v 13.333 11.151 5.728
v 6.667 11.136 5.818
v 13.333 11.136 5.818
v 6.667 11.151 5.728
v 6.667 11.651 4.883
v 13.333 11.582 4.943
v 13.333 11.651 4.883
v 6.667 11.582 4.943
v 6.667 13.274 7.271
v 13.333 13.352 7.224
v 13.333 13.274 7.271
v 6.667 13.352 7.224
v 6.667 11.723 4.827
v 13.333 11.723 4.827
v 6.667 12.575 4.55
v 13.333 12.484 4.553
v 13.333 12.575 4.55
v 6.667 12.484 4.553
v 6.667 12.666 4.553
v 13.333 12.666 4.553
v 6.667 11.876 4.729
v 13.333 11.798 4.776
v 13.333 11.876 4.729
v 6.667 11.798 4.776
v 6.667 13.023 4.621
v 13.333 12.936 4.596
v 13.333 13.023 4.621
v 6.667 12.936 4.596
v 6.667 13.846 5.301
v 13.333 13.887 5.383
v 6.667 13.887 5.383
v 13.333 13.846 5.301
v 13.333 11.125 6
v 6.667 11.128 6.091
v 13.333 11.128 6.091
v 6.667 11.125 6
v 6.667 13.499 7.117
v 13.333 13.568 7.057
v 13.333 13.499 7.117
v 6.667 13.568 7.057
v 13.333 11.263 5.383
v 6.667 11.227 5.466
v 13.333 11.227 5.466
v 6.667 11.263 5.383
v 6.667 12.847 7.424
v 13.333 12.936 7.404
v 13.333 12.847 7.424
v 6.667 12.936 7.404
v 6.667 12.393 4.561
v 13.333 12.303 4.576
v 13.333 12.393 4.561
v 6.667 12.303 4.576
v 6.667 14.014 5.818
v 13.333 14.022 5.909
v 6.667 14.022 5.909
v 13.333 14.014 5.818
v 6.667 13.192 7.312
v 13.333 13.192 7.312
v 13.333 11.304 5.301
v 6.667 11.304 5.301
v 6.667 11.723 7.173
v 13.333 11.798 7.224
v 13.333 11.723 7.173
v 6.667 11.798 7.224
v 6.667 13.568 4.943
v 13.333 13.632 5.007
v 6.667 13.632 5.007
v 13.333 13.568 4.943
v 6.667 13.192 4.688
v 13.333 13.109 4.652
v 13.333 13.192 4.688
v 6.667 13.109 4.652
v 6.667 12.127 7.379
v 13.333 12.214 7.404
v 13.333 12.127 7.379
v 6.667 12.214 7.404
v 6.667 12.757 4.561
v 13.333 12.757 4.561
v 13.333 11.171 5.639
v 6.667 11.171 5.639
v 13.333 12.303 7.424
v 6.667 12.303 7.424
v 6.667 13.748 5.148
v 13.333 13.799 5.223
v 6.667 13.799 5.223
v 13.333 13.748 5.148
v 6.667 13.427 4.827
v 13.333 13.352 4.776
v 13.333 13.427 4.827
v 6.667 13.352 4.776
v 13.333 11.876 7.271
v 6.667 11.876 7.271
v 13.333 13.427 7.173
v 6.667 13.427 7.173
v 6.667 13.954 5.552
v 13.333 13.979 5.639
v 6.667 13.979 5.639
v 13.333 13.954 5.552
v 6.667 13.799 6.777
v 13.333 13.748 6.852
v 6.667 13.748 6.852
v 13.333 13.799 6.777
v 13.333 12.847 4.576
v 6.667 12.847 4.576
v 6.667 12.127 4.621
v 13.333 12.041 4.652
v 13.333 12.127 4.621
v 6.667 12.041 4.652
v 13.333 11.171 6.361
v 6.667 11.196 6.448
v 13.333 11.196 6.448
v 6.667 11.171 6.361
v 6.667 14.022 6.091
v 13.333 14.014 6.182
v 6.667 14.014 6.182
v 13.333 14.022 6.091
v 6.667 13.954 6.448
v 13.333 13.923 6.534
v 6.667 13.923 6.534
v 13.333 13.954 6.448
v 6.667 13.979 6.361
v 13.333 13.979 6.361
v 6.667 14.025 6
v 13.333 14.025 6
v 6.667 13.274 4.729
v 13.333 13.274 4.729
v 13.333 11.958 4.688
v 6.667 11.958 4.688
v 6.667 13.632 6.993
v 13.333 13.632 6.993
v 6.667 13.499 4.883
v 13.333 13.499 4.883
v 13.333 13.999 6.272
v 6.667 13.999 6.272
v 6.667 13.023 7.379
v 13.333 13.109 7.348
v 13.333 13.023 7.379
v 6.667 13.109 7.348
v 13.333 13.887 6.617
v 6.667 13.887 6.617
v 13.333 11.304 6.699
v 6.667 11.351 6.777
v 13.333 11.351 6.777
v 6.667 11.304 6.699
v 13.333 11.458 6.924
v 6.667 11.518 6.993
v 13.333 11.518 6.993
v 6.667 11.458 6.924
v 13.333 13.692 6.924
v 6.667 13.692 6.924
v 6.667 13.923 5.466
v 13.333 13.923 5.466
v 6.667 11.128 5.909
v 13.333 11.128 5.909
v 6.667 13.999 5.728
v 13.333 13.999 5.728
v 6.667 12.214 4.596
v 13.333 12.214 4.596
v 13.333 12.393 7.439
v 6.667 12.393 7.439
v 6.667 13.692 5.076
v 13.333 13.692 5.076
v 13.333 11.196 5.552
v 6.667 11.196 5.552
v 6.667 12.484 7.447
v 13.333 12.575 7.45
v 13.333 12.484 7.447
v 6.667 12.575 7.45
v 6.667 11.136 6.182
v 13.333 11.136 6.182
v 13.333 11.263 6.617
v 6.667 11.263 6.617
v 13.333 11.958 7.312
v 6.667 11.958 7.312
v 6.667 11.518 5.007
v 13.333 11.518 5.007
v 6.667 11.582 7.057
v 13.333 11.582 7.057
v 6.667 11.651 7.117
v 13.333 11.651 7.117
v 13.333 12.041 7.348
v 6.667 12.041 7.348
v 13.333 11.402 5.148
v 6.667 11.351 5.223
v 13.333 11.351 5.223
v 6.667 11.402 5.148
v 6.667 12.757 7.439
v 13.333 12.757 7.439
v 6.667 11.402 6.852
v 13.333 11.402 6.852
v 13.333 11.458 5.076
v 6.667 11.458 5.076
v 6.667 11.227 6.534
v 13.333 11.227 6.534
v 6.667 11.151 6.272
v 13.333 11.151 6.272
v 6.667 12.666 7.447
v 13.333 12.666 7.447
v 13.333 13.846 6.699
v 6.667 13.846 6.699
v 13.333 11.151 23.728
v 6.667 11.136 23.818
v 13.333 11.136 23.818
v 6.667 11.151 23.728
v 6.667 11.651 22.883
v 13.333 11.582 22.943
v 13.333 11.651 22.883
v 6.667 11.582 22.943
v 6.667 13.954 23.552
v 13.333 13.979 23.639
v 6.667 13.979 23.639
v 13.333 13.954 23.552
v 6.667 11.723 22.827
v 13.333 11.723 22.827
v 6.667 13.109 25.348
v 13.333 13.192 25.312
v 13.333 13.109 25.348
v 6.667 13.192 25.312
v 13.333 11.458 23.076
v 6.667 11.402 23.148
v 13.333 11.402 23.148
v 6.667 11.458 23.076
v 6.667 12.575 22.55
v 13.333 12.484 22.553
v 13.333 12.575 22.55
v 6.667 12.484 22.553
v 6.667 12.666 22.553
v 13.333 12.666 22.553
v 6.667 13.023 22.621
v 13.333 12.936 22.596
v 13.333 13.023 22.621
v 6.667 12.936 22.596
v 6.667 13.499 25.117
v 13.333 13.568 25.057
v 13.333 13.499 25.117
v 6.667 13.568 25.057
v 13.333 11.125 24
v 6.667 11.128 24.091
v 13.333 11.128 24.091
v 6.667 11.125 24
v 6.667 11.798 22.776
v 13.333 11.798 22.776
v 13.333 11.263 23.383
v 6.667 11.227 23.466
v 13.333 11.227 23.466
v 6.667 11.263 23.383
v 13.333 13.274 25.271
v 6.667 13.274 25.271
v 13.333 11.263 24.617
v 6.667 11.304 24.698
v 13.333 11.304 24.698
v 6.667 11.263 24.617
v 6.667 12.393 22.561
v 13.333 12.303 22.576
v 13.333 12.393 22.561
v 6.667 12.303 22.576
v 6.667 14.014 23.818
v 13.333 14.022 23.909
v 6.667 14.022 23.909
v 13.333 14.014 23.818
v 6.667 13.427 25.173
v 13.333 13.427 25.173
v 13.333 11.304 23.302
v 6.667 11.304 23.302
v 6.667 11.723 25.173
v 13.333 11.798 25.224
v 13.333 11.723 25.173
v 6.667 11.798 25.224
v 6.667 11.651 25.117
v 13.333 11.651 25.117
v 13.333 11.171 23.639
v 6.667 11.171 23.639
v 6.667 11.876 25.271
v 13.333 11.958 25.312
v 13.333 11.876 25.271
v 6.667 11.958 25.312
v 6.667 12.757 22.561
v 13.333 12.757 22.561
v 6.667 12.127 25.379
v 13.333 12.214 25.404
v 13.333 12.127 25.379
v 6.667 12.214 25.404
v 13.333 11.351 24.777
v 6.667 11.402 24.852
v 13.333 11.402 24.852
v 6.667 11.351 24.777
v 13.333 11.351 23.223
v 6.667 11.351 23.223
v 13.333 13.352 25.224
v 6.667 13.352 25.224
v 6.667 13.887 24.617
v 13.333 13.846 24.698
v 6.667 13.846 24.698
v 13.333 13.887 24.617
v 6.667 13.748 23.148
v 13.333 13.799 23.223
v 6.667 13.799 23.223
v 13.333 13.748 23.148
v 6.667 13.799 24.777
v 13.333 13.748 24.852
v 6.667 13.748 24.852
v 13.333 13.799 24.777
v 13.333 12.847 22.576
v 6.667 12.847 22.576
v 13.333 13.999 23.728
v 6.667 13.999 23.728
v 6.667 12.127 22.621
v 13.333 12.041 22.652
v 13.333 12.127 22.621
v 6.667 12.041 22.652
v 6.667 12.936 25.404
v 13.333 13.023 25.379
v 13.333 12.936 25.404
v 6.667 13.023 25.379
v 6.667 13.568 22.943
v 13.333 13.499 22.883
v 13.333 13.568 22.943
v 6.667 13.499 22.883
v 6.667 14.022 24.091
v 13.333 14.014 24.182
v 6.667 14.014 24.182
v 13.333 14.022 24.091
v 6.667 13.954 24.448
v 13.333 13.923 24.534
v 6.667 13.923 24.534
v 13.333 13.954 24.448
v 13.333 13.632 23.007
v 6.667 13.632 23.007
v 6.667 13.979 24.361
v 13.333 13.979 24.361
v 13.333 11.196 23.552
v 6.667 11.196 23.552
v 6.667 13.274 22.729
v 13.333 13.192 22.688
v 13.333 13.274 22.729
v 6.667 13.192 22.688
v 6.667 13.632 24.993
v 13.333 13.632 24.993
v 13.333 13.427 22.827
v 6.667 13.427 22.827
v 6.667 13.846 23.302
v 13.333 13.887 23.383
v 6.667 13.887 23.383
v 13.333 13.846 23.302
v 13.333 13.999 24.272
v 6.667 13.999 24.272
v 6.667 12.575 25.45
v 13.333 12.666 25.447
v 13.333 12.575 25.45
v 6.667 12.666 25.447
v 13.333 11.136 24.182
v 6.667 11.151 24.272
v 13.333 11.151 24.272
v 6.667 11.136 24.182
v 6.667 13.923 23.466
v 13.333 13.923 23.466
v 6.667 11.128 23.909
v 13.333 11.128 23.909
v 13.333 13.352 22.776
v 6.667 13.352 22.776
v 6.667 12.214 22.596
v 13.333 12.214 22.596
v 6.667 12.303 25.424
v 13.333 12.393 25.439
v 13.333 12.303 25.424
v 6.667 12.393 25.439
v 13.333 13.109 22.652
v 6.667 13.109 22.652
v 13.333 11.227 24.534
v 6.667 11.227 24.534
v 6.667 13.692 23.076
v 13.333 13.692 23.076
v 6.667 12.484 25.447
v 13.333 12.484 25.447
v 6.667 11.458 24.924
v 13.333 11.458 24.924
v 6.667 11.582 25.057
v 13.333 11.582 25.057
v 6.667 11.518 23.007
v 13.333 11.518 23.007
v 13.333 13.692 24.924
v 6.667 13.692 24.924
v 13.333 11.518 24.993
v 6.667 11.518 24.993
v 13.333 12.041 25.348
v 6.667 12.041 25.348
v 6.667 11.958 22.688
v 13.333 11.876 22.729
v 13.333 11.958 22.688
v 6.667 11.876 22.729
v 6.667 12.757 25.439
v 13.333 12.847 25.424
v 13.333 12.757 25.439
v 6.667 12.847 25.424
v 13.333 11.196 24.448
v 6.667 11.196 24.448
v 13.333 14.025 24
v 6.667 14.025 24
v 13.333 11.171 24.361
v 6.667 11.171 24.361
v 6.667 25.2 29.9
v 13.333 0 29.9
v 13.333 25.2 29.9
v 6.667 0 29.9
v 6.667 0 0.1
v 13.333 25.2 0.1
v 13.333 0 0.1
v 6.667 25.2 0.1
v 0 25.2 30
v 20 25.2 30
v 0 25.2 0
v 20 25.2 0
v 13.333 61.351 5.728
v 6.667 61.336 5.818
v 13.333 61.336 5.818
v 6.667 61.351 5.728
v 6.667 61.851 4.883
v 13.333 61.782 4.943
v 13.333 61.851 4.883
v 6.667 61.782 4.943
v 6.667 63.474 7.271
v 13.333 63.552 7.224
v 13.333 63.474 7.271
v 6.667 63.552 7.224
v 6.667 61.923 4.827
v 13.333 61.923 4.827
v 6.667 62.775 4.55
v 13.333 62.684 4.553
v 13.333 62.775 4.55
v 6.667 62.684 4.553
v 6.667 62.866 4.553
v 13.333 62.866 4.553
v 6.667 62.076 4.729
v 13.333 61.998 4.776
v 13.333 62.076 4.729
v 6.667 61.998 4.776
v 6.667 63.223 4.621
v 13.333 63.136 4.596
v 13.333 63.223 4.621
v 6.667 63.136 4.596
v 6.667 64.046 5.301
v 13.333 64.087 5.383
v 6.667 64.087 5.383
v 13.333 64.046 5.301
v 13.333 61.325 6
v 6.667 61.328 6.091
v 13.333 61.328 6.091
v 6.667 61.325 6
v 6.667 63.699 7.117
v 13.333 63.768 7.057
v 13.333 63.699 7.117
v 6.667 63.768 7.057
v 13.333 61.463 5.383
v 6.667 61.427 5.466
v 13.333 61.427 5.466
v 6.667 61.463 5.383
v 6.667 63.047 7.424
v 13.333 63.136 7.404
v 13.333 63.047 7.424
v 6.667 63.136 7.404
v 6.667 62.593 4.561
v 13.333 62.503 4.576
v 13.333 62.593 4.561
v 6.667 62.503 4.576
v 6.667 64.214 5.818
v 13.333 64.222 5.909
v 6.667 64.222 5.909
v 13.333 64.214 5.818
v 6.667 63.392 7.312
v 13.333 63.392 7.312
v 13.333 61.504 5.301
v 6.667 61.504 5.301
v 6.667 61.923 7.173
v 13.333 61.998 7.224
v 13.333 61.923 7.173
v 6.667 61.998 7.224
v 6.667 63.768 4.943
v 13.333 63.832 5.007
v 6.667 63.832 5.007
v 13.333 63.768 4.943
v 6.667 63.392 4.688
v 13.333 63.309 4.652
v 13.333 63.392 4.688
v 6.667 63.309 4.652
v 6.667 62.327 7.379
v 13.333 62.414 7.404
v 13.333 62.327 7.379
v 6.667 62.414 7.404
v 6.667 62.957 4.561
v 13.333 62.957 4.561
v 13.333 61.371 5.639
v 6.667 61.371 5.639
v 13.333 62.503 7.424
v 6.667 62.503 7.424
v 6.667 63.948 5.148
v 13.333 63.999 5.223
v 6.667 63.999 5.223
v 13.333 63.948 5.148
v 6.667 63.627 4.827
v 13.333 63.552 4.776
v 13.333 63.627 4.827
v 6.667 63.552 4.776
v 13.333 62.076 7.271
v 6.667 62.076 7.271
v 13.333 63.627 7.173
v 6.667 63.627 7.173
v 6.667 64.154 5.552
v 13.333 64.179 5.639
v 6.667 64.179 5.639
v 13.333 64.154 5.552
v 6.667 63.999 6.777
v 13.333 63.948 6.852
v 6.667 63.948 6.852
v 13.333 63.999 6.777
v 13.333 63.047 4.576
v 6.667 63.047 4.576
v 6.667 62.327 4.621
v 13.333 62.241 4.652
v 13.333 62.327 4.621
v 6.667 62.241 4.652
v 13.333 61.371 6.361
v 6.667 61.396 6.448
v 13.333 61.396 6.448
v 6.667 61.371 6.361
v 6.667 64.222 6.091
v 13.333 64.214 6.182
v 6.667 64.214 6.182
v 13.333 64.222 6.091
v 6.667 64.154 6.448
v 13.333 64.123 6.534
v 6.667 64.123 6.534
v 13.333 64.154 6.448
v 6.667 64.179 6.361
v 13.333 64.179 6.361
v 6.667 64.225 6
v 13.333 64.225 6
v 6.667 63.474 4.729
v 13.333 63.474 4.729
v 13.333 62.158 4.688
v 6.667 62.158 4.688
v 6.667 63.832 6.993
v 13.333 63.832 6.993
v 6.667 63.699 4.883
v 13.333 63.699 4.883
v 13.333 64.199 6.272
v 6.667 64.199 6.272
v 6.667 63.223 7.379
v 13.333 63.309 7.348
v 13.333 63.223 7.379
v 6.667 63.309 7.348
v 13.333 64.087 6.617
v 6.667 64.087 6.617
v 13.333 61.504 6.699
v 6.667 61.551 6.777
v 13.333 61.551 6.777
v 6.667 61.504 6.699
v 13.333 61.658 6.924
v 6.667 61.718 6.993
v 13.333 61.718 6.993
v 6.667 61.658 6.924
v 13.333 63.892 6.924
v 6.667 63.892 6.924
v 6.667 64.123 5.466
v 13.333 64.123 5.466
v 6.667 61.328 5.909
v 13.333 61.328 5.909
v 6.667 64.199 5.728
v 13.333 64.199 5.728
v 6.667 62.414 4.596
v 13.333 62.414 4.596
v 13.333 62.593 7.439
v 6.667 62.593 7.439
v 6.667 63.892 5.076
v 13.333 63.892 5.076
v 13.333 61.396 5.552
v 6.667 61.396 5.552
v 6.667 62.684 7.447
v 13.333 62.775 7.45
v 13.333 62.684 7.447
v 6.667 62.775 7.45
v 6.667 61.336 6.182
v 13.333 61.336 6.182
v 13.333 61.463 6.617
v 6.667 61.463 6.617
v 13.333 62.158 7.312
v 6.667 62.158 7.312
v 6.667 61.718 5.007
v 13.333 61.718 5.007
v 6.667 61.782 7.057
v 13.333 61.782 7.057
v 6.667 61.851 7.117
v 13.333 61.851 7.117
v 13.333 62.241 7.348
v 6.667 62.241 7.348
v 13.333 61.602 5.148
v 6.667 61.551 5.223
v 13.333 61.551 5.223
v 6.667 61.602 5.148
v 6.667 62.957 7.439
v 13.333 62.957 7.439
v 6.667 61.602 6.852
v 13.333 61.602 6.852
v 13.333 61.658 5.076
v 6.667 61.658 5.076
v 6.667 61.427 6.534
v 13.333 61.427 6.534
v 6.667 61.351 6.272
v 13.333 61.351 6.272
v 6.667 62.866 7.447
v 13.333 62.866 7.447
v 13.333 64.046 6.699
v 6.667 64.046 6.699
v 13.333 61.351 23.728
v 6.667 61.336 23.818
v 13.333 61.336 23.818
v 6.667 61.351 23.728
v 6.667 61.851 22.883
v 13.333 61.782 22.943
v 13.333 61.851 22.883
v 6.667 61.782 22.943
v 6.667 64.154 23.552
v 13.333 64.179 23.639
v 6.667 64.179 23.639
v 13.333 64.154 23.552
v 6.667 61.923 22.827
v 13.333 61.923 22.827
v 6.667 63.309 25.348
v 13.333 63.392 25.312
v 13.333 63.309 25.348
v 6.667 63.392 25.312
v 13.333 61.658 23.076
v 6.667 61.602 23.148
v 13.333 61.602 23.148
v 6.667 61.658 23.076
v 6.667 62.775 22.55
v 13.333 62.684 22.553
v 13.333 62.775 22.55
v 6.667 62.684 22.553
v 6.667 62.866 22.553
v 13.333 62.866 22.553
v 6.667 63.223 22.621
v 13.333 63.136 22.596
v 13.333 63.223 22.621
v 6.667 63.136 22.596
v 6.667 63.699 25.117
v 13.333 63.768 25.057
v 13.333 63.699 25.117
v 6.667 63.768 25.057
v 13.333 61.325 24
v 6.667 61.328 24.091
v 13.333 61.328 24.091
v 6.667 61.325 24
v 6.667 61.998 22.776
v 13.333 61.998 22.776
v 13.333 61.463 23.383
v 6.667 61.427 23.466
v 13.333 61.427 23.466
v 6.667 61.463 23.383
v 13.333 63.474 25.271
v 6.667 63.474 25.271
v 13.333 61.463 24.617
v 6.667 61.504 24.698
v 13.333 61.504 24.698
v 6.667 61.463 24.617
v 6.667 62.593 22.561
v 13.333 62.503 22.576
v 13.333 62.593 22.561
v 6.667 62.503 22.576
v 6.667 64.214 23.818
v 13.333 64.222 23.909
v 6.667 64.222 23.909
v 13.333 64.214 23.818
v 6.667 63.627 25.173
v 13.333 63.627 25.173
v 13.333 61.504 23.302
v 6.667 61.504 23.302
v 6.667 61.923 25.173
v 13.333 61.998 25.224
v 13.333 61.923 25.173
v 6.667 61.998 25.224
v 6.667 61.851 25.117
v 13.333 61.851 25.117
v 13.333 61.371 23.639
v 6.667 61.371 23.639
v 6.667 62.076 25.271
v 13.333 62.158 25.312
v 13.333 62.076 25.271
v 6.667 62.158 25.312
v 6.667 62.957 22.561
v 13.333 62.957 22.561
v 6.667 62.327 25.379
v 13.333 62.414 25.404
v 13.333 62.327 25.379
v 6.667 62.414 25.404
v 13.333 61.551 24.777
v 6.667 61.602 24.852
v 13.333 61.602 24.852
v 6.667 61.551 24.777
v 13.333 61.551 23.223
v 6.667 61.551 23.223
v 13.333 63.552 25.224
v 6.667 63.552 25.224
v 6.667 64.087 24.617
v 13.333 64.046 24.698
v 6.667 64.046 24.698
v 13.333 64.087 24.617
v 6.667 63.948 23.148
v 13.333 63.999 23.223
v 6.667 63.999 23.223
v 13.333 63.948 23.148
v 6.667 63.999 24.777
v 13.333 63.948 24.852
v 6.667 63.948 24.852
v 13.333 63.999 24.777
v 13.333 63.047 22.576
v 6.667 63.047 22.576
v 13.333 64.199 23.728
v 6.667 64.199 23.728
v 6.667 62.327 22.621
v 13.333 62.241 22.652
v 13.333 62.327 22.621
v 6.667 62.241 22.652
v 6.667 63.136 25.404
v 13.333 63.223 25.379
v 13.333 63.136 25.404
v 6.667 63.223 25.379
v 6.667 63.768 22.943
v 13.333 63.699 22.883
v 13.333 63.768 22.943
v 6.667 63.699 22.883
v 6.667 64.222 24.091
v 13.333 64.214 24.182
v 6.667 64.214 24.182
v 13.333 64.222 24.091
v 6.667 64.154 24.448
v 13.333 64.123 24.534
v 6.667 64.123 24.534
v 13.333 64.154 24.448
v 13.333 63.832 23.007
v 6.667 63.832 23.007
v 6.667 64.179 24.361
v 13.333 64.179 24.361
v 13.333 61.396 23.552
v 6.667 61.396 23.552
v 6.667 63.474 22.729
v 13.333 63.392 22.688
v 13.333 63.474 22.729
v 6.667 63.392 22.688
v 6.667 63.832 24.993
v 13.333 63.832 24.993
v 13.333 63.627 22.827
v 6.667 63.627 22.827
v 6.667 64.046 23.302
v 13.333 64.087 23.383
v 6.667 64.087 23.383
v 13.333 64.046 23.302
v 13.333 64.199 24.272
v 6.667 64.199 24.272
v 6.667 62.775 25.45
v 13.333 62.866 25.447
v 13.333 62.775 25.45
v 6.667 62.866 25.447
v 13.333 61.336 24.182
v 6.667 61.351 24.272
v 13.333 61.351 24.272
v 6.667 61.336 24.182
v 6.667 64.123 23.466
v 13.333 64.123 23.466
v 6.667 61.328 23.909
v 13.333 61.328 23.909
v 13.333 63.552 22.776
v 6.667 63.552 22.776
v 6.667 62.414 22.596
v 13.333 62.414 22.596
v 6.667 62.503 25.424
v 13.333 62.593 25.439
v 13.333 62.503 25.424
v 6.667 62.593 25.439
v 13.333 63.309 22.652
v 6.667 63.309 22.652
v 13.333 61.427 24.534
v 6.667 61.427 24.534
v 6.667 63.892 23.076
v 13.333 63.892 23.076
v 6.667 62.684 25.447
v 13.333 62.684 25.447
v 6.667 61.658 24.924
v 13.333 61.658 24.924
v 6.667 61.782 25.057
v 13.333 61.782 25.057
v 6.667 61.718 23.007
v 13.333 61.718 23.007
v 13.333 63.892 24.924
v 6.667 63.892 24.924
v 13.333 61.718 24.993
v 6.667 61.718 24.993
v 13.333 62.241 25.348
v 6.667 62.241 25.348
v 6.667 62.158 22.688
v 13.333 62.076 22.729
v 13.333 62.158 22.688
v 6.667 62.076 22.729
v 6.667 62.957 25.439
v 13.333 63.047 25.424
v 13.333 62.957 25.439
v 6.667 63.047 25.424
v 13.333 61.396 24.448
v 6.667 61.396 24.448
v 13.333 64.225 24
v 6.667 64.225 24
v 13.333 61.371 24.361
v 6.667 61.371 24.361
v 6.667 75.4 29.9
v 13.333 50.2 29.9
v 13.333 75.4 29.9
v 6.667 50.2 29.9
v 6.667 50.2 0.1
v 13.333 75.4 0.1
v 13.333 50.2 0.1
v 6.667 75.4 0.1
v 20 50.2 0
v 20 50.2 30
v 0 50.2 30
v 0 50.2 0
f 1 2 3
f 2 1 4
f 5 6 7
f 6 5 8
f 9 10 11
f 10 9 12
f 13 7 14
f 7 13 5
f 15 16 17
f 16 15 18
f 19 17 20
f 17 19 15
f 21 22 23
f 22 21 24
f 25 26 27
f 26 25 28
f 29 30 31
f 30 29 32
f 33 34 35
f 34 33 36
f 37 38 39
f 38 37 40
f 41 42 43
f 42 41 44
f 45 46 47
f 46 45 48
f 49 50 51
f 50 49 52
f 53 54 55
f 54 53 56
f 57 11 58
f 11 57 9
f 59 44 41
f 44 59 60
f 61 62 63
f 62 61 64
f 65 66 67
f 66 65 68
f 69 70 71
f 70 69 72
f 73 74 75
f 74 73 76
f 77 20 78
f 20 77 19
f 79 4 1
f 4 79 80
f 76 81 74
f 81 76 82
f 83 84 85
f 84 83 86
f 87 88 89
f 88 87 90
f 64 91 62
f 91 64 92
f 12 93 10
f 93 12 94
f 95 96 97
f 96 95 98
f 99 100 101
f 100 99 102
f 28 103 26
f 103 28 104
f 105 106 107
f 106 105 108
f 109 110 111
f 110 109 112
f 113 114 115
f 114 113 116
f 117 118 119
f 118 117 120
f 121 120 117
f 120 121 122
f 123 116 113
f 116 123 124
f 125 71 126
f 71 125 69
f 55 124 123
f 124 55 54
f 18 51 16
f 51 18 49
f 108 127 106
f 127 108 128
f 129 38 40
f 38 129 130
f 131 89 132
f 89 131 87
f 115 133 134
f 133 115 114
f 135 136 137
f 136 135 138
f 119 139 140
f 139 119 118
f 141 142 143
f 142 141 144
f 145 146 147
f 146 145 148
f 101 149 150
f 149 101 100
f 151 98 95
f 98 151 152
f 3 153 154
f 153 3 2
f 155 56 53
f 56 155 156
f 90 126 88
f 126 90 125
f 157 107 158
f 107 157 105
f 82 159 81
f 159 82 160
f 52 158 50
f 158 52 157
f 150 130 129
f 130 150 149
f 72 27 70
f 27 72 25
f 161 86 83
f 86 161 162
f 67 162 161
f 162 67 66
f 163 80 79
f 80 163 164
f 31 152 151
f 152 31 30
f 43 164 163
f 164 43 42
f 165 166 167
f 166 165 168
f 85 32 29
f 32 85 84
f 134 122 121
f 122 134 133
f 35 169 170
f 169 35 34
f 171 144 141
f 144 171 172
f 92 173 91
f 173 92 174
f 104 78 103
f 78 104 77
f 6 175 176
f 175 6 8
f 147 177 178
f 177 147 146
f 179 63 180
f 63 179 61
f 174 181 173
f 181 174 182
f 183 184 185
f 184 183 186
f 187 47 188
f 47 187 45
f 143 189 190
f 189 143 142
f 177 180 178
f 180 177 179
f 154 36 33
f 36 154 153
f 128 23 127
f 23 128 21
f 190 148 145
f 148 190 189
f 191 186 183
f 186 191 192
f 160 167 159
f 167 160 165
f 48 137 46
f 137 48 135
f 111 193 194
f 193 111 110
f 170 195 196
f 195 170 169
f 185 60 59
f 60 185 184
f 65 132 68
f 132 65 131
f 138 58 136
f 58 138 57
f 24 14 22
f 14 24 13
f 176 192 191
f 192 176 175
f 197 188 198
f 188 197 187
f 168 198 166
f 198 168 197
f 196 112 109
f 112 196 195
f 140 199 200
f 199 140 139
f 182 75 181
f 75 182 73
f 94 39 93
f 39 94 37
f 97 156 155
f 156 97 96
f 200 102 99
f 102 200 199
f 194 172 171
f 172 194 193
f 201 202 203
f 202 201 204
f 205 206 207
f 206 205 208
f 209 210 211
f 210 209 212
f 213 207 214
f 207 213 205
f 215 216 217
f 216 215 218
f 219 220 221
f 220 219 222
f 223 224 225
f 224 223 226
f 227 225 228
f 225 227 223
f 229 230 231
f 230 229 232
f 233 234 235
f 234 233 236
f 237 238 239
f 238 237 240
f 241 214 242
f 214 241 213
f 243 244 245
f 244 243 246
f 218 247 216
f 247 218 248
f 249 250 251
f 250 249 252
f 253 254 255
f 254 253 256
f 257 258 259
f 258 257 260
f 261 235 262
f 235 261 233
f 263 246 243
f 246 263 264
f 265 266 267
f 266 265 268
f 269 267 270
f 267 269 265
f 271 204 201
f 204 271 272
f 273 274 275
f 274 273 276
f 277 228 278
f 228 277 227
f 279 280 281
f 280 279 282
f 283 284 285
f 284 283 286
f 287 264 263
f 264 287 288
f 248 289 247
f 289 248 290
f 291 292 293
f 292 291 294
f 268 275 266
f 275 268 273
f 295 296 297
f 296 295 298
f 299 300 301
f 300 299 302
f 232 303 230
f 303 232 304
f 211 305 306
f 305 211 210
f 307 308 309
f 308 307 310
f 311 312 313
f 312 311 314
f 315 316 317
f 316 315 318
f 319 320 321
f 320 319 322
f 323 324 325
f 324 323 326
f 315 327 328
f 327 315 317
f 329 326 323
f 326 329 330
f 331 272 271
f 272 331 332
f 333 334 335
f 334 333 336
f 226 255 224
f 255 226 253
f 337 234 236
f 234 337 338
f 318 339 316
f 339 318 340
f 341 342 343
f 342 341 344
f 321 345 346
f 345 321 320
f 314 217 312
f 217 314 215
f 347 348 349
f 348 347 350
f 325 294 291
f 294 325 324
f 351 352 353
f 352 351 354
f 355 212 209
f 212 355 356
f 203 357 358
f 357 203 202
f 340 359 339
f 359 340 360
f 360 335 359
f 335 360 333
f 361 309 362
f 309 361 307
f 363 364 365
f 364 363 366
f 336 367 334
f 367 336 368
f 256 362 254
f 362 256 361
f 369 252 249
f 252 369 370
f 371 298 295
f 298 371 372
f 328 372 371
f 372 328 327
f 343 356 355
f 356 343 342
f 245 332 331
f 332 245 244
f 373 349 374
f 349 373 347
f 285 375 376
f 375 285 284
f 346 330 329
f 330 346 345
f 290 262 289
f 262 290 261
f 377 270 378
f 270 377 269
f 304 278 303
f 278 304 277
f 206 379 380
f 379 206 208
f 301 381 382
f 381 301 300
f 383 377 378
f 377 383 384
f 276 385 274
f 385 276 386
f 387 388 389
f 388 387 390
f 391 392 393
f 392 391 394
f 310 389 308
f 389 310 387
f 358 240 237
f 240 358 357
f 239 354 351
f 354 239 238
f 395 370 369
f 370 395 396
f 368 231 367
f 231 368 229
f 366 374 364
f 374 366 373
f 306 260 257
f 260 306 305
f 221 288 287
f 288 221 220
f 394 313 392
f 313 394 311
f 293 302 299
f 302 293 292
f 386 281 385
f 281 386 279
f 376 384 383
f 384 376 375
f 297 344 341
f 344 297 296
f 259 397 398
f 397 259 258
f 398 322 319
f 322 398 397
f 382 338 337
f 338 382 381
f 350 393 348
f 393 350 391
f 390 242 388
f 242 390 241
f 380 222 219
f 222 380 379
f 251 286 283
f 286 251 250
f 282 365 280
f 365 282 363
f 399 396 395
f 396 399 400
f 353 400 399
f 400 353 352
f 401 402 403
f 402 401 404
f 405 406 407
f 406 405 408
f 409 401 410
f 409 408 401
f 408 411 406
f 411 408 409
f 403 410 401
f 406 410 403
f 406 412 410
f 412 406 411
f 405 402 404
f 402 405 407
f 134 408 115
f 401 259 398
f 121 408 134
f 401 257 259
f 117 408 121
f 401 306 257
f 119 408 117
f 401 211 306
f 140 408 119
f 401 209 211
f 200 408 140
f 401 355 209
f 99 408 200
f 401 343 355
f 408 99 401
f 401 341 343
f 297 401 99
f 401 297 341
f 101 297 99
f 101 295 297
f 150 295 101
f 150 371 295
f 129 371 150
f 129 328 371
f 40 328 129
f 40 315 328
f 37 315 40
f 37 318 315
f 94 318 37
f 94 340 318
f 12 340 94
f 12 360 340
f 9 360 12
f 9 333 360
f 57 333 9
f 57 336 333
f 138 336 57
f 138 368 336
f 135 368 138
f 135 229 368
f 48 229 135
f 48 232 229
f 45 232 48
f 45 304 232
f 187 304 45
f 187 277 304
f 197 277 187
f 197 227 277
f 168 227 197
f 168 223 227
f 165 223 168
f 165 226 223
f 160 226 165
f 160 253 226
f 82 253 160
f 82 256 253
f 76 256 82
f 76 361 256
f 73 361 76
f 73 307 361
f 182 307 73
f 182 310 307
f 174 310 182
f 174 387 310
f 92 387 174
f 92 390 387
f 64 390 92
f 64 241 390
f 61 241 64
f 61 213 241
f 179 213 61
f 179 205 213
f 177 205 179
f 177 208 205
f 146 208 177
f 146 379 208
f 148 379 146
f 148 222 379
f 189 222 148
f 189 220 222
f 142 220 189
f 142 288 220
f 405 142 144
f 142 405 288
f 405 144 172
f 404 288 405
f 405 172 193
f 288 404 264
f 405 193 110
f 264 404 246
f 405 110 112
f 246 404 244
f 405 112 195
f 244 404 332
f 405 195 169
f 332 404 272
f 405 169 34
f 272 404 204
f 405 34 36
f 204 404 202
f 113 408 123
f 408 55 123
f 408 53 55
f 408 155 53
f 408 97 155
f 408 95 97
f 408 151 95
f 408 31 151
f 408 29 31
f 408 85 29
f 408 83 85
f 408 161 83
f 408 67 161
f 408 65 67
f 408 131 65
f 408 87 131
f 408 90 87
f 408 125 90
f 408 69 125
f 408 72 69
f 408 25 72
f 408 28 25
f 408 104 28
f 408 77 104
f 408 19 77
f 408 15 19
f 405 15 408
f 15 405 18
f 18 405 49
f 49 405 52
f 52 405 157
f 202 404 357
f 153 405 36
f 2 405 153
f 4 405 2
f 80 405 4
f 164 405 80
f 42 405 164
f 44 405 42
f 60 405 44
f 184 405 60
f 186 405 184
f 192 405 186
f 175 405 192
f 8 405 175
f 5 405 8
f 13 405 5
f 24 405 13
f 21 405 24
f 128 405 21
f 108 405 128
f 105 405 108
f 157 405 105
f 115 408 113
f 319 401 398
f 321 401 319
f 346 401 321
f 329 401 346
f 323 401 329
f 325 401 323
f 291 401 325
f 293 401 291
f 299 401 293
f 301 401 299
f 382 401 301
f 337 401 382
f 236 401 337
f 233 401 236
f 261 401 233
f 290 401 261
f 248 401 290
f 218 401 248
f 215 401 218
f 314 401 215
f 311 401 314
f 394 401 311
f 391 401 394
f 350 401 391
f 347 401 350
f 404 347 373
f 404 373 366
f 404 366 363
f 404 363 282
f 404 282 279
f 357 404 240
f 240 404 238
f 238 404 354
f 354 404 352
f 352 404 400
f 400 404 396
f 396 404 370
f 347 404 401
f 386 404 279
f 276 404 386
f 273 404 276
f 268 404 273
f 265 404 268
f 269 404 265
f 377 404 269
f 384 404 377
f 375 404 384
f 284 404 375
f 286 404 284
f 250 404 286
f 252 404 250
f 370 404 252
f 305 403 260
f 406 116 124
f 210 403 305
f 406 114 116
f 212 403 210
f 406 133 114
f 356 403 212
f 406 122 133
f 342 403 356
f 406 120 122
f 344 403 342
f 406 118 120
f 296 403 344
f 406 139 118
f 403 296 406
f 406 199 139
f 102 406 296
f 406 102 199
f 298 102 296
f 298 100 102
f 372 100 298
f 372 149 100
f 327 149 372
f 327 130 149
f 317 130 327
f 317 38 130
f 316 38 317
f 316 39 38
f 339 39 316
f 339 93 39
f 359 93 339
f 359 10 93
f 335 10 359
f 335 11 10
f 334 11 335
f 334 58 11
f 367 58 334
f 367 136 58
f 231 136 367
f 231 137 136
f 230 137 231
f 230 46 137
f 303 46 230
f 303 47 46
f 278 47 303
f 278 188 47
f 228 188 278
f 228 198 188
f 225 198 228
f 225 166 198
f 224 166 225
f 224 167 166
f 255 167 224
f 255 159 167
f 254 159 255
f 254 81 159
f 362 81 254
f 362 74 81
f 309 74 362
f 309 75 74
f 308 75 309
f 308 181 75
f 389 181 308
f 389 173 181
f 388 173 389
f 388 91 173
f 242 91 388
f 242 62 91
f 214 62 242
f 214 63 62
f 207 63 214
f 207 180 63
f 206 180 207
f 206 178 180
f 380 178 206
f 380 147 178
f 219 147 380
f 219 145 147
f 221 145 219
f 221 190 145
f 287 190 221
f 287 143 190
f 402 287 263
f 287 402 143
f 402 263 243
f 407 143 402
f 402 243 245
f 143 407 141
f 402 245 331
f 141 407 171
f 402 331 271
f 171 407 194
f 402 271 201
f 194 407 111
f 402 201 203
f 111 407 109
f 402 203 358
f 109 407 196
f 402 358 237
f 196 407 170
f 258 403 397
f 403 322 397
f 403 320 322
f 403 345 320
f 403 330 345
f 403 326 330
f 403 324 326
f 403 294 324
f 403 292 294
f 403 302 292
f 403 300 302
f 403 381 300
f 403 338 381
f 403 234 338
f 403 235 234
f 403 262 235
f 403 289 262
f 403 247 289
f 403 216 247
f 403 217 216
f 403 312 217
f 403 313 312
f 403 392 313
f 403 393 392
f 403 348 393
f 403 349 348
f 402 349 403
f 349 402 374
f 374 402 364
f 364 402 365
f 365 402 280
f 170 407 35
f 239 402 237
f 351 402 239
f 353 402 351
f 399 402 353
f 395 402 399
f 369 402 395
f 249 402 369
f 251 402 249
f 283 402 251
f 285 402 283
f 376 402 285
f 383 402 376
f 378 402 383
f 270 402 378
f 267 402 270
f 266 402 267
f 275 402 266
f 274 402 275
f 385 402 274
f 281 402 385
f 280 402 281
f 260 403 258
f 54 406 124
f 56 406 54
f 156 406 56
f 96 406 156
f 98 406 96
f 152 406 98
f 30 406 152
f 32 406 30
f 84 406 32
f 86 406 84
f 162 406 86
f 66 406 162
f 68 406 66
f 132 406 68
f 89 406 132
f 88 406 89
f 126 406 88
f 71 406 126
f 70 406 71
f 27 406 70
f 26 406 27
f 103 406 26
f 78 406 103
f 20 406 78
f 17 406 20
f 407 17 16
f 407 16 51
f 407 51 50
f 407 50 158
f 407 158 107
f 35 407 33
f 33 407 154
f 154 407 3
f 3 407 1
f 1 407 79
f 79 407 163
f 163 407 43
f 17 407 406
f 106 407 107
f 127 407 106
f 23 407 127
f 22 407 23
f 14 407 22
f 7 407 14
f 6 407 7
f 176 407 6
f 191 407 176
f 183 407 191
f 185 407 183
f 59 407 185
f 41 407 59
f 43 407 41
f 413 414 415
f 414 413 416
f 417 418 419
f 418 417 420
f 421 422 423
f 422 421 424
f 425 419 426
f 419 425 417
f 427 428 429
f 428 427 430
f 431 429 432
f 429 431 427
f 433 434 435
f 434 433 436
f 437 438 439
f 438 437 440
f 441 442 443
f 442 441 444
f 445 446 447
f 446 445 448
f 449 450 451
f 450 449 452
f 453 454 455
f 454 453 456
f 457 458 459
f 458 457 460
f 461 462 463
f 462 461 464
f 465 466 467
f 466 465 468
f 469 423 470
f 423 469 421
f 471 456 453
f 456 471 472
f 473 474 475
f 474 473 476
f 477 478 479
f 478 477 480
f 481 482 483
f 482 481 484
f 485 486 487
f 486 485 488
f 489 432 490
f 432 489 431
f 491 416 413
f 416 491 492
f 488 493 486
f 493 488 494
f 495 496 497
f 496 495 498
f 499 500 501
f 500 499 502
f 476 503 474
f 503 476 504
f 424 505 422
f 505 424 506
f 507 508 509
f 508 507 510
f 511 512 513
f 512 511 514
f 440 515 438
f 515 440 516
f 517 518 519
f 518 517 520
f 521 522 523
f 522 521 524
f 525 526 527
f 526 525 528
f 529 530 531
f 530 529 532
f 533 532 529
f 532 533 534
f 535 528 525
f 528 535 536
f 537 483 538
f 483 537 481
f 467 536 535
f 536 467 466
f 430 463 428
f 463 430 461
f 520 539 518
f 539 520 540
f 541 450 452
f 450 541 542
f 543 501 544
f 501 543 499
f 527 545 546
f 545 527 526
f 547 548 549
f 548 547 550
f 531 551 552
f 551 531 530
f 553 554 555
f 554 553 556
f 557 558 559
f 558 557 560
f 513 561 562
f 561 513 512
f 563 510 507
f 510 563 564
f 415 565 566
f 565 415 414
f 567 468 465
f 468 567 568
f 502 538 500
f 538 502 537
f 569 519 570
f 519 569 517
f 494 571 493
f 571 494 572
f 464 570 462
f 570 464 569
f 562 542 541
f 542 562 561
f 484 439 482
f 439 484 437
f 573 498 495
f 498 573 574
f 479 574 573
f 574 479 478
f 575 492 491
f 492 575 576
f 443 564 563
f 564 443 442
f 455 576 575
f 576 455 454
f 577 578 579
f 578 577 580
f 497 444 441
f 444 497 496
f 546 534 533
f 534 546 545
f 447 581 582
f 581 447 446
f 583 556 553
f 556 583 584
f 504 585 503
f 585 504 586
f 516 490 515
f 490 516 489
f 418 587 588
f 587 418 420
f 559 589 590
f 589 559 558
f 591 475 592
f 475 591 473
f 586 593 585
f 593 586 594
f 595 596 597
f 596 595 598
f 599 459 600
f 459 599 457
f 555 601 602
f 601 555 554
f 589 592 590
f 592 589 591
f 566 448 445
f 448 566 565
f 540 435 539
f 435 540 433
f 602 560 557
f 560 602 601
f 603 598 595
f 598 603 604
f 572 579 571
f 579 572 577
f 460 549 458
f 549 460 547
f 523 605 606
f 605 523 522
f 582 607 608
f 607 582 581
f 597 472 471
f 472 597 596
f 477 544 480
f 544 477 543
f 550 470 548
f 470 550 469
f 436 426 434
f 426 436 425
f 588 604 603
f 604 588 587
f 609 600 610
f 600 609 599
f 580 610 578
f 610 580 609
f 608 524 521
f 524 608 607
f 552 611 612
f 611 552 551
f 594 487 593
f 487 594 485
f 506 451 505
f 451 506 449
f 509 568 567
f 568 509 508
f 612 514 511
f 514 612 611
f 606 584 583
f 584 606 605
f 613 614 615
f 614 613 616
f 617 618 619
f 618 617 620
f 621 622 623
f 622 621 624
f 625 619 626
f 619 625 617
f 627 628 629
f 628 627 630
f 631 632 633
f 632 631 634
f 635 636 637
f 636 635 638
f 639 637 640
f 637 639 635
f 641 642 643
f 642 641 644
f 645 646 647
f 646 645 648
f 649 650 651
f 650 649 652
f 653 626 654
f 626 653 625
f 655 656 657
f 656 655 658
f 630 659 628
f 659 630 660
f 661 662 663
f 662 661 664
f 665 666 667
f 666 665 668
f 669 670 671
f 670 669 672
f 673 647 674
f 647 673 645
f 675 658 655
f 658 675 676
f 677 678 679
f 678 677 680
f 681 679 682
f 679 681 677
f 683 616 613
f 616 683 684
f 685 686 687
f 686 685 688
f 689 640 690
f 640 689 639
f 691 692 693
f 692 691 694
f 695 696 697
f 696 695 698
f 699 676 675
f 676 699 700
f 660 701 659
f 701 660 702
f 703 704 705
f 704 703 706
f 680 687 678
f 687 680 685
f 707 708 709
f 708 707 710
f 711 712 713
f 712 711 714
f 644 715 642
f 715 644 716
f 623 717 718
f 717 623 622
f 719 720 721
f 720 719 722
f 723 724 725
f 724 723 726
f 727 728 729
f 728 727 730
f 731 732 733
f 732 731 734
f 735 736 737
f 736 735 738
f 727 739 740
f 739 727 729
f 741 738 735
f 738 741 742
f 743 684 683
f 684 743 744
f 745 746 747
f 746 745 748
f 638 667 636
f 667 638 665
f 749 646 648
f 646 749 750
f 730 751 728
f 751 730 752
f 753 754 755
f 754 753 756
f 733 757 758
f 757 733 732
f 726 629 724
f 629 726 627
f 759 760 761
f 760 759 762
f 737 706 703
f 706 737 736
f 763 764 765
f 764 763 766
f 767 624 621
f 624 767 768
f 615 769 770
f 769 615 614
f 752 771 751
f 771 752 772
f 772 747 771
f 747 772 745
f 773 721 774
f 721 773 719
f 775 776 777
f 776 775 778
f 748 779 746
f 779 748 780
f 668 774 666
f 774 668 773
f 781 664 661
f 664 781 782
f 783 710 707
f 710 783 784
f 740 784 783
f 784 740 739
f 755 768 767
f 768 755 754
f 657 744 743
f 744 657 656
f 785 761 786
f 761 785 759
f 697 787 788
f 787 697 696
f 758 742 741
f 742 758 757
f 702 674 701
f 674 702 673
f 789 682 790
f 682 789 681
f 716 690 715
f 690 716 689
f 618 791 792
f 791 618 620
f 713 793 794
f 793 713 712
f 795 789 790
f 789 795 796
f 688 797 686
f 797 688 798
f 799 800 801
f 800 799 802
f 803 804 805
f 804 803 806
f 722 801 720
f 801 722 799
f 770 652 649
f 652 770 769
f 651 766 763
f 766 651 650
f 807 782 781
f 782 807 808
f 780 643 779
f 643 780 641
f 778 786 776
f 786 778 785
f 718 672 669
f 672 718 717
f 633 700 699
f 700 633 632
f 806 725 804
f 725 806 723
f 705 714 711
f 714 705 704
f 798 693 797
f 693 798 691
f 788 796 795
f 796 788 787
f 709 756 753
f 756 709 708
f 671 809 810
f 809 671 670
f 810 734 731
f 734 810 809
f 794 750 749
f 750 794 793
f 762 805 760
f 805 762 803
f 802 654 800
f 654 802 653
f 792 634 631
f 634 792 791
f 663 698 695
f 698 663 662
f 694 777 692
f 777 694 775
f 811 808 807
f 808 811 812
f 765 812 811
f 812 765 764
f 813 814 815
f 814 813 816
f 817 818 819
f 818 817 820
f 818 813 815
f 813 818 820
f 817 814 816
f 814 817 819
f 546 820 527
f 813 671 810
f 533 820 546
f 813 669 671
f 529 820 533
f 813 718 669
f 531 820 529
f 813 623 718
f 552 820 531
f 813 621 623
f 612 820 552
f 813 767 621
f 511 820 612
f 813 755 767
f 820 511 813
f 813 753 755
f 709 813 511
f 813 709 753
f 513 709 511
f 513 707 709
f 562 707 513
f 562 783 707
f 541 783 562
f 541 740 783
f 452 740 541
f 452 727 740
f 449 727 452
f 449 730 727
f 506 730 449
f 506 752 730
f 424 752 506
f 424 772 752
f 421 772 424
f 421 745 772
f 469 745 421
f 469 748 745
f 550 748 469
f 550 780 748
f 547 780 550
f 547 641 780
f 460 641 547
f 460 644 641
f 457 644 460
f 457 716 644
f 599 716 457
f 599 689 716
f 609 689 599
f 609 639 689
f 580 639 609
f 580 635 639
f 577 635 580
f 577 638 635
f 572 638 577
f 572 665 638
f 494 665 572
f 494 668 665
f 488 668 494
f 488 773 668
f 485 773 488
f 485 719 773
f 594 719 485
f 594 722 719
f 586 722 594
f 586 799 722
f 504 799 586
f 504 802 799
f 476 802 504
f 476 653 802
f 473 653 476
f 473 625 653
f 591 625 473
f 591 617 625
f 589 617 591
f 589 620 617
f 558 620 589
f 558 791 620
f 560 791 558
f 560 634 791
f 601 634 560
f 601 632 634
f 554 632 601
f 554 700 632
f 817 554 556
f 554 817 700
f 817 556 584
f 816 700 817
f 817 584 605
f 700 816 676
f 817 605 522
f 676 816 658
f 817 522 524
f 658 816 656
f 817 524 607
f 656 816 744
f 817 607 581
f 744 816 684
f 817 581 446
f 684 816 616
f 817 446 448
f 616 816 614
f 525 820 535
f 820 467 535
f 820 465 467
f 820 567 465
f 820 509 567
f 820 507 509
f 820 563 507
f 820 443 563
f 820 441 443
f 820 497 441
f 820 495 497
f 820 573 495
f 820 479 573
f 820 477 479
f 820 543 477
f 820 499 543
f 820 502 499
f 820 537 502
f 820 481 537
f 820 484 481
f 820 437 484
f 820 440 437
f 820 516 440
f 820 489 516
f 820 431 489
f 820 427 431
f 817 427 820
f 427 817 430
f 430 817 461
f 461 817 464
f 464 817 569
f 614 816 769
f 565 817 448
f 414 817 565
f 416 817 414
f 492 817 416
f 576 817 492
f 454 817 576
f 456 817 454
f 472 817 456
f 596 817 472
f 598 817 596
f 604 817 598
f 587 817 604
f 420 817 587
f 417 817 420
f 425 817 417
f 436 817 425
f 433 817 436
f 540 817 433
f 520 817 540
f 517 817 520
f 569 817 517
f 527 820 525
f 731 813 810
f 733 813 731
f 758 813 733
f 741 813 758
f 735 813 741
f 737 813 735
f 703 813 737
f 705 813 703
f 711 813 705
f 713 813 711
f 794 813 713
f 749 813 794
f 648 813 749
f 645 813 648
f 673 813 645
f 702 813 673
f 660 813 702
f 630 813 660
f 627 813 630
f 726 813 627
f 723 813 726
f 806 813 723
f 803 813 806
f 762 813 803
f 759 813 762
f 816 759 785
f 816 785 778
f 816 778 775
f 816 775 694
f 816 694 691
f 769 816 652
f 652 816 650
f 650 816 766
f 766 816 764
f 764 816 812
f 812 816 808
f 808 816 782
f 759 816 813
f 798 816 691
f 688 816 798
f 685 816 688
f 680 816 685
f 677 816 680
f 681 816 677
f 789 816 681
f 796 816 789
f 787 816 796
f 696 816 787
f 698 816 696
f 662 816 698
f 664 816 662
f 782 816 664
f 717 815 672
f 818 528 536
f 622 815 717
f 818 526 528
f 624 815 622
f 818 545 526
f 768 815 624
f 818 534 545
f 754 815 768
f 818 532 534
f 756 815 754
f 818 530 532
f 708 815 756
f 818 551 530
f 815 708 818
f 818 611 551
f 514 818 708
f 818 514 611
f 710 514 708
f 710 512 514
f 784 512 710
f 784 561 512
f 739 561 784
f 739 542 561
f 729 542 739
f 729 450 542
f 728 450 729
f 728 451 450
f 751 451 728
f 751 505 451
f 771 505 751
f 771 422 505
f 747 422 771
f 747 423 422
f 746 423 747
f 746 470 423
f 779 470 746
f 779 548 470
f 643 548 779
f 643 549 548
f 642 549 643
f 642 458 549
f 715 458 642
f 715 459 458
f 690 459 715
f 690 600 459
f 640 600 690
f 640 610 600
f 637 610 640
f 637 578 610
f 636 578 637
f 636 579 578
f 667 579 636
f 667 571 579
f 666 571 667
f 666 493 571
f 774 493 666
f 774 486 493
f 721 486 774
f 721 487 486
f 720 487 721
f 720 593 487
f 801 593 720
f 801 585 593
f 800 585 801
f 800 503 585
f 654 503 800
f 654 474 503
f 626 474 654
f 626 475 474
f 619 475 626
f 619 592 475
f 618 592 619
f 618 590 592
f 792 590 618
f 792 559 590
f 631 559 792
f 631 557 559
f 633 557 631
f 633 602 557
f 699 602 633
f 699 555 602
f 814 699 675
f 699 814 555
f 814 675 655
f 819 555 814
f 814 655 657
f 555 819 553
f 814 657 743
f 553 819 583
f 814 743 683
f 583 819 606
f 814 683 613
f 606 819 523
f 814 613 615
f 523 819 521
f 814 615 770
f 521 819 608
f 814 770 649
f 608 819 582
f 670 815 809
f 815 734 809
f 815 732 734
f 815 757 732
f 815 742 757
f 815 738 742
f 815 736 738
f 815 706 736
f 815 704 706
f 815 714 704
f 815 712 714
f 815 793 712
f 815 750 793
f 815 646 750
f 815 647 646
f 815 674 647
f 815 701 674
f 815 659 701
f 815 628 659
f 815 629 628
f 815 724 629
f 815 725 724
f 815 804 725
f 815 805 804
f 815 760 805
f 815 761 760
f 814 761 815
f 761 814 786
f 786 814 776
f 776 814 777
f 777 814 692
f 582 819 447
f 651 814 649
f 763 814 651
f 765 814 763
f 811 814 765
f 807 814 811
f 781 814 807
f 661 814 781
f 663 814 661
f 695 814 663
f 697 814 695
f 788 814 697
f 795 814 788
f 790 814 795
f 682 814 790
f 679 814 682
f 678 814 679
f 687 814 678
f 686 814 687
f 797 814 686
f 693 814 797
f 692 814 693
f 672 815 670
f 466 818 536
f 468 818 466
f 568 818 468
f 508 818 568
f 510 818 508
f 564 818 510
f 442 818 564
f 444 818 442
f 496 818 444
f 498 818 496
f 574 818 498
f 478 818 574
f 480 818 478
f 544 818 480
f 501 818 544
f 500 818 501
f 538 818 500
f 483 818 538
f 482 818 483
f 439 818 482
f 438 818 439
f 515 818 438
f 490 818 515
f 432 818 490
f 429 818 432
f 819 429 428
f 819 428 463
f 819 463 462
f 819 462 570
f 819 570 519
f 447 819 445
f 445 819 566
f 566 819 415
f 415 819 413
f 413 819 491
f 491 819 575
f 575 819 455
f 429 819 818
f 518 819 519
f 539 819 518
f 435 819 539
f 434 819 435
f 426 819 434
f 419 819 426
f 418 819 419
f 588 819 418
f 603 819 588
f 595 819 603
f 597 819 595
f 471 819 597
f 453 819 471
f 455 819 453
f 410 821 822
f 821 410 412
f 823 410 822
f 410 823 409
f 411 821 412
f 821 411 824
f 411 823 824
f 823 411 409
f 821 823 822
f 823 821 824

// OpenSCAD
// file: ../frame_bar_extension_25mm_base.scad
// Frame Bar Extension
// This extension piece connects two frame bars with a configurable middle section
include <../../shared_helper.scad>;

revision = 1.2;

// TODO: Add in M4 Alternative
// TODO: Add in NUT Alternatives for M4 and M3

// Adjustable values
extension_length = 25.0;                  // Length of the extension middle section (adjustable)

hole_diameter = m3_hole_diameter;         // Using M3 holes from shared_helper

countersunk_hole_diameter = m3_head_diameter;
countersunk_hole_depth = m3_head_depth + 0.5;

knurled_insert_diameter = m3_type1_knurled_insert_diameter;
knurled_insert_depth = m3_type1_knurled_insert_depth;

// Frame bar connector dimensions
connector_width = 20.0;                   // Width of the frame bar connector
connector_height = 30.0;                  // Height of the frame bar connector
mount_depth = 25.0;                       // Depth of the connector interfaces

// Hole specifications
hole_top_margin = 3.7 + (2.3);            // Distance from top edge to first hole center
hole_spacing = 13.4;                      // Distance between hole centers
hole_front_margin = 10.2 - (2.3) + 4.675; // Distance from front edge to hole centers

// Tolerance for better fit
fit_tolerance = 0.2;                      // Tolerance for male connector to fit into female

// Derived values
mounting_width_void = connector_width / 3.0;

module mounting_holes() {
  translate([0, hole_front_margin, hole_top_margin]) {
    rotate([0, 90, 0]) {
      cylinder(d=hole_diameter, h=100.00);
    }
  }

  translate([0, hole_front_margin, connector_height - hole_top_margin]) {
    rotate([0, 90, 0]) {
      cylinder(d=hole_diameter, h=100.00);
    }
  }
}

module countersunk_holes() {
  translate([0, hole_front_margin, hole_top_margin]) {
    rotate([0, 90, 0]) {
      cylinder(d=countersunk_hole_diameter, h=countersunk_hole_depth);
    }
  }

  translate([0, hole_front_margin, connector_height - hole_top_margin]) {
    rotate([0, 90, 0]) {
      cylinder(d=countersunk_hole_diameter, h=countersunk_hole_depth);
    }
  }
}

module heat_insert_holes() {
  translate([(connector_width - knurled_insert_depth), hole_front_margin, hole_top_margin]) {
    rotate([0, 90, 0]) {
      cylinder(d=knurled_insert_diameter, h=knurled_insert_depth);
    }
  }

  translate([(connector_width - knurled_insert_depth), hole_front_margin, connector_height - hole_top_margin]) {
    rotate([0, 90, 0]) {
      cylinder(d=knurled_insert_diameter, h=knurled_insert_depth);
    }
  }
}

module female_mount() {
  difference() {
    cube([connector_width, mount_depth, connector_height]);
    // Mounting space
    translate([mounting_width_void, 0, 0]) {
      cube([mounting_width_void, mount_depth, connector_height]);
    }

    mounting_holes();
    countersunk_holes();
    heat_insert_holes();
  }
}

module male_mount() {
  difference() {
    // Apply tolerance to the male connector width and height
    translate([fit_tolerance/2, 0, fit_tolerance/2]) {
      cube([connector_width - fit_tolerance, mount_depth + fit_tolerance, connector_height - fit_tolerance]);
    }

    // Mounting spaces - adjusted for the new position
    translate([fit_tolerance/2, 0, fit_tolerance/2]) {
      cube([mounting_width_void - fit_tolerance/2, mount_depth + fit_tolerance, connector_height - fit_tolerance]);
    }

    translate([connector_width - mounting_width_void, 0, fit_tolerance/2]) {
      cube([mounting_width_void - fit_tolerance/2, mount_depth + fit_tolerance, connector_height - fit_tolerance]);
    }

    // Holes - keep original positions to maintain alignment
    mounting_holes();
  }
}

module extension() {
  cube([connector_width, extension_length, connector_height]);
}
// main file
// Frame Bar Extension
// This extension piece connects two frame bars with a configurable middle section
include <../frame_bar_extension_25mm_base.scad>;

revision = 1.2;

countersunk_hole_diameter = m4_head_diameter;
countersunk_hole_depth = m4_head_depth + 0.5;

knurled_insert_diameter = m4_type1_knurled_insert_diameter;
knurled_insert_depth = m4_type1_knurled_insert_depth;

module frame_bar_extension() {
  union() {
    // female_mount();
    male_mount();

    translate([0, mount_depth + fit_tolerance, 0]) {
      extension();
    }

    translate([0, mount_depth + fit_tolerance + extension_length, 0]) {
      male_mount();
    }
  }
}

// Render the extension piece
frame_bar_extension();
